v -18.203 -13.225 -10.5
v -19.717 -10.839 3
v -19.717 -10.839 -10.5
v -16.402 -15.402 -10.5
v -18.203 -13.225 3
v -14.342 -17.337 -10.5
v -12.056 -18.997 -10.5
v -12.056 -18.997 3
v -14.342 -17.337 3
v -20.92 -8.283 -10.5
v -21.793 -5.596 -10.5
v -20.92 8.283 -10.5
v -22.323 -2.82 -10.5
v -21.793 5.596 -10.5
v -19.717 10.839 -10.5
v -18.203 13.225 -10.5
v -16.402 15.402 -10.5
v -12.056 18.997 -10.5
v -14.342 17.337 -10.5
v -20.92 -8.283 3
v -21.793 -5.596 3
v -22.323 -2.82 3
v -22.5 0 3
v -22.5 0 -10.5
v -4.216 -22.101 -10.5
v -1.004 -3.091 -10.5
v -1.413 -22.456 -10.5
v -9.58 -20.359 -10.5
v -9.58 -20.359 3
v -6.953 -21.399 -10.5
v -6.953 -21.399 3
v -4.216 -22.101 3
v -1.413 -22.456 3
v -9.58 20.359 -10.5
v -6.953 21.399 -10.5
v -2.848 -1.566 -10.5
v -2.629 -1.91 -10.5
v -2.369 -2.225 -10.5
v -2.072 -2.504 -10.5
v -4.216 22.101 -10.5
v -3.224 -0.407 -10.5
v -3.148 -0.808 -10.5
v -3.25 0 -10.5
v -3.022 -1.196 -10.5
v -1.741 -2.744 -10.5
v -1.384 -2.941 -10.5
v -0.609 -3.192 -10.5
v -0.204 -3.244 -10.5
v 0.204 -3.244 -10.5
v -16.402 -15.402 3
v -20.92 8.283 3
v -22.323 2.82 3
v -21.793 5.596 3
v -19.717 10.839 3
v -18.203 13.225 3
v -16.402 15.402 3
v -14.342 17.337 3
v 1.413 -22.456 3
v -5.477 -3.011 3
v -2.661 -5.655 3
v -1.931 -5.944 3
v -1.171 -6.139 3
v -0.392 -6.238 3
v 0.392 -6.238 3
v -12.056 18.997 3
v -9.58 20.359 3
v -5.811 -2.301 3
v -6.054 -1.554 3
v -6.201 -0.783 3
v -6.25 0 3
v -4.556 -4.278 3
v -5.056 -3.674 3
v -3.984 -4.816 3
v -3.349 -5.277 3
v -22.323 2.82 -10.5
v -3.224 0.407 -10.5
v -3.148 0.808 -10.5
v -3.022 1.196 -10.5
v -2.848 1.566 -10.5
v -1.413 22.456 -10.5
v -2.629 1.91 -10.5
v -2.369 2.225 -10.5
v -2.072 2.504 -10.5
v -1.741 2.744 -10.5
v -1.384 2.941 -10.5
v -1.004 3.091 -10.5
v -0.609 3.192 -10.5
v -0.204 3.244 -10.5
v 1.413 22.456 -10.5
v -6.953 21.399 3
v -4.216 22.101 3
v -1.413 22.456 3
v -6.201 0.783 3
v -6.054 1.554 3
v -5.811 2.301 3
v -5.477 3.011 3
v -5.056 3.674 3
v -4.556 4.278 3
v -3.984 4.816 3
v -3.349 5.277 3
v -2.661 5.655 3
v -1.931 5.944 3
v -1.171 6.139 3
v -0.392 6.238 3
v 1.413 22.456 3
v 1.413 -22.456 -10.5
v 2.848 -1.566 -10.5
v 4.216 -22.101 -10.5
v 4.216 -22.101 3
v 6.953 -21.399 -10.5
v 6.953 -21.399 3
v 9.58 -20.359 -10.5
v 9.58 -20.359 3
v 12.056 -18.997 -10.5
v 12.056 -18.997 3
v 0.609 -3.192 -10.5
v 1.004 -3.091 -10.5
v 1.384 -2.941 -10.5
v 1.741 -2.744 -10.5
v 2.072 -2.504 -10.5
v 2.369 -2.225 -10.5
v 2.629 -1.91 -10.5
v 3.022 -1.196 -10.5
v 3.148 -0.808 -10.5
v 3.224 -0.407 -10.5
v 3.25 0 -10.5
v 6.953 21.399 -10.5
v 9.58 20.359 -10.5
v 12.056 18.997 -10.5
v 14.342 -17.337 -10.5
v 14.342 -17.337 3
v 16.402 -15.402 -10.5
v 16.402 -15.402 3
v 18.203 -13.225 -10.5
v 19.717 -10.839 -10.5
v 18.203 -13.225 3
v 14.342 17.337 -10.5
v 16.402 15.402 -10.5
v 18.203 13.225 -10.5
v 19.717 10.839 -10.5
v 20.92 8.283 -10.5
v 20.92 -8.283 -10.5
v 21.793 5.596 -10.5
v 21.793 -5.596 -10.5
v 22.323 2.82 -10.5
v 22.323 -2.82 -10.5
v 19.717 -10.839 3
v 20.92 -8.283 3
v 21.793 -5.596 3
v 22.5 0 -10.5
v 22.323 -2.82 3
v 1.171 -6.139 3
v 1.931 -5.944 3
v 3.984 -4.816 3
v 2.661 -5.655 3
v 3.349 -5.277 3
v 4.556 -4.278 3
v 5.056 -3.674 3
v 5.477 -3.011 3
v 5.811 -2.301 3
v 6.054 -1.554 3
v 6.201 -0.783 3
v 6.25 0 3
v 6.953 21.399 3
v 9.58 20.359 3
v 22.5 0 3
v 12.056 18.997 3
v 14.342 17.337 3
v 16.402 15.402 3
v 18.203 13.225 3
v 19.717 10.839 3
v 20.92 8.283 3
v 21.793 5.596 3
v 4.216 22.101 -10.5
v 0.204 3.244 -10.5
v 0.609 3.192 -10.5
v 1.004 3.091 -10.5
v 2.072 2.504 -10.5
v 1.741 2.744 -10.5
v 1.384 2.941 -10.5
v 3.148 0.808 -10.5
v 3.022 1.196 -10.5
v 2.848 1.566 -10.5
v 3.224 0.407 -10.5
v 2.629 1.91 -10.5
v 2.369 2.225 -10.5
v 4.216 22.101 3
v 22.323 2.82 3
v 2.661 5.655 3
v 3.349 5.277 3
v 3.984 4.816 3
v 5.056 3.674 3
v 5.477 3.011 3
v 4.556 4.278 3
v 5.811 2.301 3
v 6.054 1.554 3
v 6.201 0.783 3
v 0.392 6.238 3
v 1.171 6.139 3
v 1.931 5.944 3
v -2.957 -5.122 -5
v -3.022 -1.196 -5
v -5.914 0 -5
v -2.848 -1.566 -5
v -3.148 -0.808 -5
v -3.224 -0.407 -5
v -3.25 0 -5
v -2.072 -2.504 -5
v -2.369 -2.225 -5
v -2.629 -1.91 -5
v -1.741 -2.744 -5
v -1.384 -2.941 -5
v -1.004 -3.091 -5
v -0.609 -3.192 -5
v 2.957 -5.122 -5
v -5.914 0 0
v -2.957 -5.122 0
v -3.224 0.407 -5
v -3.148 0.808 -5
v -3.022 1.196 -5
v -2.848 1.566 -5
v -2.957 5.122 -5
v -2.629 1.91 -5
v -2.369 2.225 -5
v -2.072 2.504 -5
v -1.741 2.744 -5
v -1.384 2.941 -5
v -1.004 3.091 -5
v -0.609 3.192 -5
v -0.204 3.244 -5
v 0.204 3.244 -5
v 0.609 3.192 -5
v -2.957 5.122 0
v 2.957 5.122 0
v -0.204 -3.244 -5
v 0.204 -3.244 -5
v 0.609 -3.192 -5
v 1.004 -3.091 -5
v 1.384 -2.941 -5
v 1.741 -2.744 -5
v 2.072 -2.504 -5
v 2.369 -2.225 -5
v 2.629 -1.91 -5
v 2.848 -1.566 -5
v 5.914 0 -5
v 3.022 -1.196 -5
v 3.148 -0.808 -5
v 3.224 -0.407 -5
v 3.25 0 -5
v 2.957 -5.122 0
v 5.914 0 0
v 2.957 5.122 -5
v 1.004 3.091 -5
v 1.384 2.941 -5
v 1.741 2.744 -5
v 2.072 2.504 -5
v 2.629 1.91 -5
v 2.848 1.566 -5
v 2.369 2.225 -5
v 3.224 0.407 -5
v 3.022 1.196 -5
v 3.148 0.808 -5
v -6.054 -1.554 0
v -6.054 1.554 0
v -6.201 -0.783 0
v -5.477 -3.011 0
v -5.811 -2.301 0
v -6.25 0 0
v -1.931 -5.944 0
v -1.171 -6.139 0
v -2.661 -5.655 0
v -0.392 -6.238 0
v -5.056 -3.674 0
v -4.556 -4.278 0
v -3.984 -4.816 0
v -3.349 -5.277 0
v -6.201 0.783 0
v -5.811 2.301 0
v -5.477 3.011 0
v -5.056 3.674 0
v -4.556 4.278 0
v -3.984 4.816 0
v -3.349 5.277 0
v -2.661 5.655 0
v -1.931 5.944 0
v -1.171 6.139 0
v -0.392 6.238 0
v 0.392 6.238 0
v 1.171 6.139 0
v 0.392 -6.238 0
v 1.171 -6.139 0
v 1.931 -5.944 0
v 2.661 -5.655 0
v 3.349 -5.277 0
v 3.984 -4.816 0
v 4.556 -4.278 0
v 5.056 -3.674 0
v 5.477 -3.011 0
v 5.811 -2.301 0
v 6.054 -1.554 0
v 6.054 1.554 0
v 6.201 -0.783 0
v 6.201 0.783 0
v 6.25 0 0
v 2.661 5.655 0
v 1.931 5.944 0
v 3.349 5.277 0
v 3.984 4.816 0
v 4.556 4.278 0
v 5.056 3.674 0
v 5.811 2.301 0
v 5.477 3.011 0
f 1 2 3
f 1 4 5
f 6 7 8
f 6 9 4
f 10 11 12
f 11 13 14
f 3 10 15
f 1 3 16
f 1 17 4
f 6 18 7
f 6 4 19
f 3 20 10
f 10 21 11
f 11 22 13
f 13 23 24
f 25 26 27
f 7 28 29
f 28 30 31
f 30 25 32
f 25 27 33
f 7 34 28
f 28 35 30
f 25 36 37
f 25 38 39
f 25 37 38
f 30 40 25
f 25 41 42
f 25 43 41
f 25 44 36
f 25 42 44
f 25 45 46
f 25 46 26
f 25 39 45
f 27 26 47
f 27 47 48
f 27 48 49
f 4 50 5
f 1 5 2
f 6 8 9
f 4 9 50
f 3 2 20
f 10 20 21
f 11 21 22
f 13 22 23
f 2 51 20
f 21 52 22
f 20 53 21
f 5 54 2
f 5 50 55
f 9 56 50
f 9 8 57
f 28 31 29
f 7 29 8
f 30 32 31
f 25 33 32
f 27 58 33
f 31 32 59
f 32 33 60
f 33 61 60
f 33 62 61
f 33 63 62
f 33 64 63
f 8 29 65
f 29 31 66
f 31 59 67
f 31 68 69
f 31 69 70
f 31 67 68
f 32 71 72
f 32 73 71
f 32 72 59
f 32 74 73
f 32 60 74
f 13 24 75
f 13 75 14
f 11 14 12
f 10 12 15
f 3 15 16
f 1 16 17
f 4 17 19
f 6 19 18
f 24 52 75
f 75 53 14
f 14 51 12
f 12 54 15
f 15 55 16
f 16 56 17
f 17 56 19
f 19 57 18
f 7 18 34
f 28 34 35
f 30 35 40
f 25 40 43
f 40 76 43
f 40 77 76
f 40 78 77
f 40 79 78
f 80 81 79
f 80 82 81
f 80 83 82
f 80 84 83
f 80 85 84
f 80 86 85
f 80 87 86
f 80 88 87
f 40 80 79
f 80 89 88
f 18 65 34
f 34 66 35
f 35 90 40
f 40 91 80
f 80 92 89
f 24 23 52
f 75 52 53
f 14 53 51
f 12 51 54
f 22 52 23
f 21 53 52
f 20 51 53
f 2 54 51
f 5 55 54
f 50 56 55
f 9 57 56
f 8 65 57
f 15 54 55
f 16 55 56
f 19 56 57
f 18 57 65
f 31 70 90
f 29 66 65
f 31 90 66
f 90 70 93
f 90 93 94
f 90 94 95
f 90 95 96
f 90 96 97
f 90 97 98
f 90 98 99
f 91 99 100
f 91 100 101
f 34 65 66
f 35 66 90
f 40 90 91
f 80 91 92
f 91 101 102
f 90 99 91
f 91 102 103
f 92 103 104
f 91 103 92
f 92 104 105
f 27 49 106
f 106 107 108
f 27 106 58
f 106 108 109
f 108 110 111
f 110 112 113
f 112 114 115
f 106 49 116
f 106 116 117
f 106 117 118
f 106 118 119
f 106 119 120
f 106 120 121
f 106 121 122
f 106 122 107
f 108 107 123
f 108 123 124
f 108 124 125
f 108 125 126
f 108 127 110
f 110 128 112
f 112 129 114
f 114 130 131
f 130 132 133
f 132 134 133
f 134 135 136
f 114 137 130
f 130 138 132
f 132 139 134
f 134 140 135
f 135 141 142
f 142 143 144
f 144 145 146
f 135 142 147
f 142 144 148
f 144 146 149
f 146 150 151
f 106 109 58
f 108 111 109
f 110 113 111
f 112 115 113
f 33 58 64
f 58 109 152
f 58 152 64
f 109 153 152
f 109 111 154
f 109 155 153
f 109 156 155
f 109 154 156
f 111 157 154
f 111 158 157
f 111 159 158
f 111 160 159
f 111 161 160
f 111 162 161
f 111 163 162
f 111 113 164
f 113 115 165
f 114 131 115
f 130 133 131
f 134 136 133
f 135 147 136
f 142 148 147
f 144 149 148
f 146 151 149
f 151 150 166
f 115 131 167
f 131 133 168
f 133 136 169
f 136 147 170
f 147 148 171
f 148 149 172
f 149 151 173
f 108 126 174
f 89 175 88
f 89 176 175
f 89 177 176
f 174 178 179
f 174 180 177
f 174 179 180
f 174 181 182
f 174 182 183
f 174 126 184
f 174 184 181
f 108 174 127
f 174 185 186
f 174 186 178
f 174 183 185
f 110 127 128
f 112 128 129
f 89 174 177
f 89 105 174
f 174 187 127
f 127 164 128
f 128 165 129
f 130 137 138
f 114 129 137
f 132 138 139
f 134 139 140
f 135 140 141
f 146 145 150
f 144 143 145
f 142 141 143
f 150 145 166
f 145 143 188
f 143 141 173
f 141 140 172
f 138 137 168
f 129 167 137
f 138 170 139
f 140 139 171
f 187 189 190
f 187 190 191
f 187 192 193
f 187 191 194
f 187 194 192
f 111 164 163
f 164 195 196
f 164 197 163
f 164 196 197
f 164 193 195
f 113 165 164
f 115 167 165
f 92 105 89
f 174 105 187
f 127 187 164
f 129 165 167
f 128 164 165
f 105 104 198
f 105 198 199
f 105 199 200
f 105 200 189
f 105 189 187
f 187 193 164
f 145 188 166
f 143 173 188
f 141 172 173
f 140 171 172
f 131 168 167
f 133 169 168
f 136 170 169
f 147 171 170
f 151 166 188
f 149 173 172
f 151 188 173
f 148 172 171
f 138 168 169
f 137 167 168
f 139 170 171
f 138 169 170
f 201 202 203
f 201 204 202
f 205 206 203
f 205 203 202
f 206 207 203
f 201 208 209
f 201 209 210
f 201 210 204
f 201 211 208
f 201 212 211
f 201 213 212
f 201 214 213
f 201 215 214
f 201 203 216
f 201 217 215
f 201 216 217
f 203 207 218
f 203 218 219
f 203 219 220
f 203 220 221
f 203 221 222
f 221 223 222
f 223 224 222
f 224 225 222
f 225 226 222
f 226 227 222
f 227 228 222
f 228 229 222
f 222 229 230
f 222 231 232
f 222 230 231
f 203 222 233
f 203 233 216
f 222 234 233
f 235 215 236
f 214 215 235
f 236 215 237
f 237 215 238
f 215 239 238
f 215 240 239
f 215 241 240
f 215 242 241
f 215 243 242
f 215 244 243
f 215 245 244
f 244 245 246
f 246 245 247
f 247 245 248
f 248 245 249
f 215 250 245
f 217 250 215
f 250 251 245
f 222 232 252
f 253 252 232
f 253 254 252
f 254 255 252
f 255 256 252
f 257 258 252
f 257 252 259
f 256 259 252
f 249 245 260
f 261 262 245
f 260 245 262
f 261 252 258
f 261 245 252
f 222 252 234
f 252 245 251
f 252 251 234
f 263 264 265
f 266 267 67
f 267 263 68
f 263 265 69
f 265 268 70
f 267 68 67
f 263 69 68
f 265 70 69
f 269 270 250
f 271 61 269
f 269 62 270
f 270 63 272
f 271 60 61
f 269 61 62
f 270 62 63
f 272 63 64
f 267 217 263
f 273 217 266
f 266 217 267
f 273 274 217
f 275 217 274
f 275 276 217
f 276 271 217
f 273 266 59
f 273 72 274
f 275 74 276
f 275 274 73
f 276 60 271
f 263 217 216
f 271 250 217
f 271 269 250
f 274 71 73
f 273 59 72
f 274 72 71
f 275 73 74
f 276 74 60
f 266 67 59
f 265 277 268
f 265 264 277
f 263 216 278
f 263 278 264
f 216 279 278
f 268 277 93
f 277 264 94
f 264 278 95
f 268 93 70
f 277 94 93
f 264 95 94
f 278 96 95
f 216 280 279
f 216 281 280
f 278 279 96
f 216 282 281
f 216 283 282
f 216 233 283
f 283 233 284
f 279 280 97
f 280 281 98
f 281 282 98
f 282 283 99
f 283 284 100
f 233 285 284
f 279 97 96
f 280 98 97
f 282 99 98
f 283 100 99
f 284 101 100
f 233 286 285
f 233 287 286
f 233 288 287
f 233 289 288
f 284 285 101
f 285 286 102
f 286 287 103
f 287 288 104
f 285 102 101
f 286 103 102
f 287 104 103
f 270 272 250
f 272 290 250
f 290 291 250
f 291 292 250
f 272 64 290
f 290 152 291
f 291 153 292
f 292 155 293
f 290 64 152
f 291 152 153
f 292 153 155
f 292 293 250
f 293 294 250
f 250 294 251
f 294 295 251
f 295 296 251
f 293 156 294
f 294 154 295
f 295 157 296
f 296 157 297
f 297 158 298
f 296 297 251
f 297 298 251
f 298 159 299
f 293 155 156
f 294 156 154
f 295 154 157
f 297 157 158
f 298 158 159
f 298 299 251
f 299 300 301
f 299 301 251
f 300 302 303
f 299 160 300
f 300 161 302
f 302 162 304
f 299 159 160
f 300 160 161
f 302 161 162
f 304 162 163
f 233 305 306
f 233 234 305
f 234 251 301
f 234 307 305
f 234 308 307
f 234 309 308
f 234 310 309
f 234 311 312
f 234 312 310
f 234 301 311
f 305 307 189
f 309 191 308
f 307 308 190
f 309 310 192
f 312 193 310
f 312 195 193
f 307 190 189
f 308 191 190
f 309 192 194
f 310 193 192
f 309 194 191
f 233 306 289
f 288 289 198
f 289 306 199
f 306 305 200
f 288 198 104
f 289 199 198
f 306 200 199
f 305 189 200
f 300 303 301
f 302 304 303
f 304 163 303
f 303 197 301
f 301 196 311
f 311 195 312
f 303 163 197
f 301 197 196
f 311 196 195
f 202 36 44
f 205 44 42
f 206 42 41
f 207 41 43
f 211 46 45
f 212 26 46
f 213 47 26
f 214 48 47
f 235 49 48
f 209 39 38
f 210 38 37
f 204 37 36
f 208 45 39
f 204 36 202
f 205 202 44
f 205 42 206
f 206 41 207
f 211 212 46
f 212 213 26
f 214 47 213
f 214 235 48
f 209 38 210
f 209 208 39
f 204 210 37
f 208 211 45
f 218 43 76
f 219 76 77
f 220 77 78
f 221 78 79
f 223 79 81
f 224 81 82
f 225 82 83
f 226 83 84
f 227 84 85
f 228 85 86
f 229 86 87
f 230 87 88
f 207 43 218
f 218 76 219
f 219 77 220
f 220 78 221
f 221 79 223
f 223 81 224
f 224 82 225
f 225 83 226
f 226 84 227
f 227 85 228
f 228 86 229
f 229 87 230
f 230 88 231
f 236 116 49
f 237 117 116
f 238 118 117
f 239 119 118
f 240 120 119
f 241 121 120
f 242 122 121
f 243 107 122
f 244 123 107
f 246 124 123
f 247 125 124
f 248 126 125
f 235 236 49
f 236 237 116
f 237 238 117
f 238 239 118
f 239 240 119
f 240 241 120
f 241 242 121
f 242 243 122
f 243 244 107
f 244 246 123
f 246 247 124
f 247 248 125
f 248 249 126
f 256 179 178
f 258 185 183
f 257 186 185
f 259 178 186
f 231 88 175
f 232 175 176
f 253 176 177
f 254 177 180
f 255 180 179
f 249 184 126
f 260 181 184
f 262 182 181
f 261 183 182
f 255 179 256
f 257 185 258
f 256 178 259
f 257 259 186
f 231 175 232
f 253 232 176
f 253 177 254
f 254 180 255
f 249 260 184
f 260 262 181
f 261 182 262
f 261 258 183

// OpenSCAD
$fn = 50;


difference() {
	union() {
		translate(v = [0, 0, -10.5000000000]) {
			cylinder(h = 13.5000000000, r = 22.5000000000);
		}
		#translate(v = [0, 0, -12.0000000000]) {
			cylinder(h = 12, r = 2.8750000000);
		}
	}
	union() {
		translate(v = [0, 0, 0]) {
			rotate(a = [0, 0, 0]) {
				difference() {
					union() {
						translate(v = [0, 0, -5]) {
							linear_extrude(height = 5) {
								polygon(points = [[5.9142500000, 0.0000000000], [2.9571250000, 5.1218907443], [-2.9571250000, 5.1218907443], [-5.9142500000, 0.0000000000], [-2.9571250000, -5.1218907443], [2.9571250000, -5.1218907443]]);
							}
						}
					}
					union();
				}
			}
		}
		#cylinder(h = 3, r = 6.2500000000);
		#translate(v = [0, 0, -100.0000000000]) {
			cylinder(h = 200, r = 3.2500000000);
		}
	}
}
